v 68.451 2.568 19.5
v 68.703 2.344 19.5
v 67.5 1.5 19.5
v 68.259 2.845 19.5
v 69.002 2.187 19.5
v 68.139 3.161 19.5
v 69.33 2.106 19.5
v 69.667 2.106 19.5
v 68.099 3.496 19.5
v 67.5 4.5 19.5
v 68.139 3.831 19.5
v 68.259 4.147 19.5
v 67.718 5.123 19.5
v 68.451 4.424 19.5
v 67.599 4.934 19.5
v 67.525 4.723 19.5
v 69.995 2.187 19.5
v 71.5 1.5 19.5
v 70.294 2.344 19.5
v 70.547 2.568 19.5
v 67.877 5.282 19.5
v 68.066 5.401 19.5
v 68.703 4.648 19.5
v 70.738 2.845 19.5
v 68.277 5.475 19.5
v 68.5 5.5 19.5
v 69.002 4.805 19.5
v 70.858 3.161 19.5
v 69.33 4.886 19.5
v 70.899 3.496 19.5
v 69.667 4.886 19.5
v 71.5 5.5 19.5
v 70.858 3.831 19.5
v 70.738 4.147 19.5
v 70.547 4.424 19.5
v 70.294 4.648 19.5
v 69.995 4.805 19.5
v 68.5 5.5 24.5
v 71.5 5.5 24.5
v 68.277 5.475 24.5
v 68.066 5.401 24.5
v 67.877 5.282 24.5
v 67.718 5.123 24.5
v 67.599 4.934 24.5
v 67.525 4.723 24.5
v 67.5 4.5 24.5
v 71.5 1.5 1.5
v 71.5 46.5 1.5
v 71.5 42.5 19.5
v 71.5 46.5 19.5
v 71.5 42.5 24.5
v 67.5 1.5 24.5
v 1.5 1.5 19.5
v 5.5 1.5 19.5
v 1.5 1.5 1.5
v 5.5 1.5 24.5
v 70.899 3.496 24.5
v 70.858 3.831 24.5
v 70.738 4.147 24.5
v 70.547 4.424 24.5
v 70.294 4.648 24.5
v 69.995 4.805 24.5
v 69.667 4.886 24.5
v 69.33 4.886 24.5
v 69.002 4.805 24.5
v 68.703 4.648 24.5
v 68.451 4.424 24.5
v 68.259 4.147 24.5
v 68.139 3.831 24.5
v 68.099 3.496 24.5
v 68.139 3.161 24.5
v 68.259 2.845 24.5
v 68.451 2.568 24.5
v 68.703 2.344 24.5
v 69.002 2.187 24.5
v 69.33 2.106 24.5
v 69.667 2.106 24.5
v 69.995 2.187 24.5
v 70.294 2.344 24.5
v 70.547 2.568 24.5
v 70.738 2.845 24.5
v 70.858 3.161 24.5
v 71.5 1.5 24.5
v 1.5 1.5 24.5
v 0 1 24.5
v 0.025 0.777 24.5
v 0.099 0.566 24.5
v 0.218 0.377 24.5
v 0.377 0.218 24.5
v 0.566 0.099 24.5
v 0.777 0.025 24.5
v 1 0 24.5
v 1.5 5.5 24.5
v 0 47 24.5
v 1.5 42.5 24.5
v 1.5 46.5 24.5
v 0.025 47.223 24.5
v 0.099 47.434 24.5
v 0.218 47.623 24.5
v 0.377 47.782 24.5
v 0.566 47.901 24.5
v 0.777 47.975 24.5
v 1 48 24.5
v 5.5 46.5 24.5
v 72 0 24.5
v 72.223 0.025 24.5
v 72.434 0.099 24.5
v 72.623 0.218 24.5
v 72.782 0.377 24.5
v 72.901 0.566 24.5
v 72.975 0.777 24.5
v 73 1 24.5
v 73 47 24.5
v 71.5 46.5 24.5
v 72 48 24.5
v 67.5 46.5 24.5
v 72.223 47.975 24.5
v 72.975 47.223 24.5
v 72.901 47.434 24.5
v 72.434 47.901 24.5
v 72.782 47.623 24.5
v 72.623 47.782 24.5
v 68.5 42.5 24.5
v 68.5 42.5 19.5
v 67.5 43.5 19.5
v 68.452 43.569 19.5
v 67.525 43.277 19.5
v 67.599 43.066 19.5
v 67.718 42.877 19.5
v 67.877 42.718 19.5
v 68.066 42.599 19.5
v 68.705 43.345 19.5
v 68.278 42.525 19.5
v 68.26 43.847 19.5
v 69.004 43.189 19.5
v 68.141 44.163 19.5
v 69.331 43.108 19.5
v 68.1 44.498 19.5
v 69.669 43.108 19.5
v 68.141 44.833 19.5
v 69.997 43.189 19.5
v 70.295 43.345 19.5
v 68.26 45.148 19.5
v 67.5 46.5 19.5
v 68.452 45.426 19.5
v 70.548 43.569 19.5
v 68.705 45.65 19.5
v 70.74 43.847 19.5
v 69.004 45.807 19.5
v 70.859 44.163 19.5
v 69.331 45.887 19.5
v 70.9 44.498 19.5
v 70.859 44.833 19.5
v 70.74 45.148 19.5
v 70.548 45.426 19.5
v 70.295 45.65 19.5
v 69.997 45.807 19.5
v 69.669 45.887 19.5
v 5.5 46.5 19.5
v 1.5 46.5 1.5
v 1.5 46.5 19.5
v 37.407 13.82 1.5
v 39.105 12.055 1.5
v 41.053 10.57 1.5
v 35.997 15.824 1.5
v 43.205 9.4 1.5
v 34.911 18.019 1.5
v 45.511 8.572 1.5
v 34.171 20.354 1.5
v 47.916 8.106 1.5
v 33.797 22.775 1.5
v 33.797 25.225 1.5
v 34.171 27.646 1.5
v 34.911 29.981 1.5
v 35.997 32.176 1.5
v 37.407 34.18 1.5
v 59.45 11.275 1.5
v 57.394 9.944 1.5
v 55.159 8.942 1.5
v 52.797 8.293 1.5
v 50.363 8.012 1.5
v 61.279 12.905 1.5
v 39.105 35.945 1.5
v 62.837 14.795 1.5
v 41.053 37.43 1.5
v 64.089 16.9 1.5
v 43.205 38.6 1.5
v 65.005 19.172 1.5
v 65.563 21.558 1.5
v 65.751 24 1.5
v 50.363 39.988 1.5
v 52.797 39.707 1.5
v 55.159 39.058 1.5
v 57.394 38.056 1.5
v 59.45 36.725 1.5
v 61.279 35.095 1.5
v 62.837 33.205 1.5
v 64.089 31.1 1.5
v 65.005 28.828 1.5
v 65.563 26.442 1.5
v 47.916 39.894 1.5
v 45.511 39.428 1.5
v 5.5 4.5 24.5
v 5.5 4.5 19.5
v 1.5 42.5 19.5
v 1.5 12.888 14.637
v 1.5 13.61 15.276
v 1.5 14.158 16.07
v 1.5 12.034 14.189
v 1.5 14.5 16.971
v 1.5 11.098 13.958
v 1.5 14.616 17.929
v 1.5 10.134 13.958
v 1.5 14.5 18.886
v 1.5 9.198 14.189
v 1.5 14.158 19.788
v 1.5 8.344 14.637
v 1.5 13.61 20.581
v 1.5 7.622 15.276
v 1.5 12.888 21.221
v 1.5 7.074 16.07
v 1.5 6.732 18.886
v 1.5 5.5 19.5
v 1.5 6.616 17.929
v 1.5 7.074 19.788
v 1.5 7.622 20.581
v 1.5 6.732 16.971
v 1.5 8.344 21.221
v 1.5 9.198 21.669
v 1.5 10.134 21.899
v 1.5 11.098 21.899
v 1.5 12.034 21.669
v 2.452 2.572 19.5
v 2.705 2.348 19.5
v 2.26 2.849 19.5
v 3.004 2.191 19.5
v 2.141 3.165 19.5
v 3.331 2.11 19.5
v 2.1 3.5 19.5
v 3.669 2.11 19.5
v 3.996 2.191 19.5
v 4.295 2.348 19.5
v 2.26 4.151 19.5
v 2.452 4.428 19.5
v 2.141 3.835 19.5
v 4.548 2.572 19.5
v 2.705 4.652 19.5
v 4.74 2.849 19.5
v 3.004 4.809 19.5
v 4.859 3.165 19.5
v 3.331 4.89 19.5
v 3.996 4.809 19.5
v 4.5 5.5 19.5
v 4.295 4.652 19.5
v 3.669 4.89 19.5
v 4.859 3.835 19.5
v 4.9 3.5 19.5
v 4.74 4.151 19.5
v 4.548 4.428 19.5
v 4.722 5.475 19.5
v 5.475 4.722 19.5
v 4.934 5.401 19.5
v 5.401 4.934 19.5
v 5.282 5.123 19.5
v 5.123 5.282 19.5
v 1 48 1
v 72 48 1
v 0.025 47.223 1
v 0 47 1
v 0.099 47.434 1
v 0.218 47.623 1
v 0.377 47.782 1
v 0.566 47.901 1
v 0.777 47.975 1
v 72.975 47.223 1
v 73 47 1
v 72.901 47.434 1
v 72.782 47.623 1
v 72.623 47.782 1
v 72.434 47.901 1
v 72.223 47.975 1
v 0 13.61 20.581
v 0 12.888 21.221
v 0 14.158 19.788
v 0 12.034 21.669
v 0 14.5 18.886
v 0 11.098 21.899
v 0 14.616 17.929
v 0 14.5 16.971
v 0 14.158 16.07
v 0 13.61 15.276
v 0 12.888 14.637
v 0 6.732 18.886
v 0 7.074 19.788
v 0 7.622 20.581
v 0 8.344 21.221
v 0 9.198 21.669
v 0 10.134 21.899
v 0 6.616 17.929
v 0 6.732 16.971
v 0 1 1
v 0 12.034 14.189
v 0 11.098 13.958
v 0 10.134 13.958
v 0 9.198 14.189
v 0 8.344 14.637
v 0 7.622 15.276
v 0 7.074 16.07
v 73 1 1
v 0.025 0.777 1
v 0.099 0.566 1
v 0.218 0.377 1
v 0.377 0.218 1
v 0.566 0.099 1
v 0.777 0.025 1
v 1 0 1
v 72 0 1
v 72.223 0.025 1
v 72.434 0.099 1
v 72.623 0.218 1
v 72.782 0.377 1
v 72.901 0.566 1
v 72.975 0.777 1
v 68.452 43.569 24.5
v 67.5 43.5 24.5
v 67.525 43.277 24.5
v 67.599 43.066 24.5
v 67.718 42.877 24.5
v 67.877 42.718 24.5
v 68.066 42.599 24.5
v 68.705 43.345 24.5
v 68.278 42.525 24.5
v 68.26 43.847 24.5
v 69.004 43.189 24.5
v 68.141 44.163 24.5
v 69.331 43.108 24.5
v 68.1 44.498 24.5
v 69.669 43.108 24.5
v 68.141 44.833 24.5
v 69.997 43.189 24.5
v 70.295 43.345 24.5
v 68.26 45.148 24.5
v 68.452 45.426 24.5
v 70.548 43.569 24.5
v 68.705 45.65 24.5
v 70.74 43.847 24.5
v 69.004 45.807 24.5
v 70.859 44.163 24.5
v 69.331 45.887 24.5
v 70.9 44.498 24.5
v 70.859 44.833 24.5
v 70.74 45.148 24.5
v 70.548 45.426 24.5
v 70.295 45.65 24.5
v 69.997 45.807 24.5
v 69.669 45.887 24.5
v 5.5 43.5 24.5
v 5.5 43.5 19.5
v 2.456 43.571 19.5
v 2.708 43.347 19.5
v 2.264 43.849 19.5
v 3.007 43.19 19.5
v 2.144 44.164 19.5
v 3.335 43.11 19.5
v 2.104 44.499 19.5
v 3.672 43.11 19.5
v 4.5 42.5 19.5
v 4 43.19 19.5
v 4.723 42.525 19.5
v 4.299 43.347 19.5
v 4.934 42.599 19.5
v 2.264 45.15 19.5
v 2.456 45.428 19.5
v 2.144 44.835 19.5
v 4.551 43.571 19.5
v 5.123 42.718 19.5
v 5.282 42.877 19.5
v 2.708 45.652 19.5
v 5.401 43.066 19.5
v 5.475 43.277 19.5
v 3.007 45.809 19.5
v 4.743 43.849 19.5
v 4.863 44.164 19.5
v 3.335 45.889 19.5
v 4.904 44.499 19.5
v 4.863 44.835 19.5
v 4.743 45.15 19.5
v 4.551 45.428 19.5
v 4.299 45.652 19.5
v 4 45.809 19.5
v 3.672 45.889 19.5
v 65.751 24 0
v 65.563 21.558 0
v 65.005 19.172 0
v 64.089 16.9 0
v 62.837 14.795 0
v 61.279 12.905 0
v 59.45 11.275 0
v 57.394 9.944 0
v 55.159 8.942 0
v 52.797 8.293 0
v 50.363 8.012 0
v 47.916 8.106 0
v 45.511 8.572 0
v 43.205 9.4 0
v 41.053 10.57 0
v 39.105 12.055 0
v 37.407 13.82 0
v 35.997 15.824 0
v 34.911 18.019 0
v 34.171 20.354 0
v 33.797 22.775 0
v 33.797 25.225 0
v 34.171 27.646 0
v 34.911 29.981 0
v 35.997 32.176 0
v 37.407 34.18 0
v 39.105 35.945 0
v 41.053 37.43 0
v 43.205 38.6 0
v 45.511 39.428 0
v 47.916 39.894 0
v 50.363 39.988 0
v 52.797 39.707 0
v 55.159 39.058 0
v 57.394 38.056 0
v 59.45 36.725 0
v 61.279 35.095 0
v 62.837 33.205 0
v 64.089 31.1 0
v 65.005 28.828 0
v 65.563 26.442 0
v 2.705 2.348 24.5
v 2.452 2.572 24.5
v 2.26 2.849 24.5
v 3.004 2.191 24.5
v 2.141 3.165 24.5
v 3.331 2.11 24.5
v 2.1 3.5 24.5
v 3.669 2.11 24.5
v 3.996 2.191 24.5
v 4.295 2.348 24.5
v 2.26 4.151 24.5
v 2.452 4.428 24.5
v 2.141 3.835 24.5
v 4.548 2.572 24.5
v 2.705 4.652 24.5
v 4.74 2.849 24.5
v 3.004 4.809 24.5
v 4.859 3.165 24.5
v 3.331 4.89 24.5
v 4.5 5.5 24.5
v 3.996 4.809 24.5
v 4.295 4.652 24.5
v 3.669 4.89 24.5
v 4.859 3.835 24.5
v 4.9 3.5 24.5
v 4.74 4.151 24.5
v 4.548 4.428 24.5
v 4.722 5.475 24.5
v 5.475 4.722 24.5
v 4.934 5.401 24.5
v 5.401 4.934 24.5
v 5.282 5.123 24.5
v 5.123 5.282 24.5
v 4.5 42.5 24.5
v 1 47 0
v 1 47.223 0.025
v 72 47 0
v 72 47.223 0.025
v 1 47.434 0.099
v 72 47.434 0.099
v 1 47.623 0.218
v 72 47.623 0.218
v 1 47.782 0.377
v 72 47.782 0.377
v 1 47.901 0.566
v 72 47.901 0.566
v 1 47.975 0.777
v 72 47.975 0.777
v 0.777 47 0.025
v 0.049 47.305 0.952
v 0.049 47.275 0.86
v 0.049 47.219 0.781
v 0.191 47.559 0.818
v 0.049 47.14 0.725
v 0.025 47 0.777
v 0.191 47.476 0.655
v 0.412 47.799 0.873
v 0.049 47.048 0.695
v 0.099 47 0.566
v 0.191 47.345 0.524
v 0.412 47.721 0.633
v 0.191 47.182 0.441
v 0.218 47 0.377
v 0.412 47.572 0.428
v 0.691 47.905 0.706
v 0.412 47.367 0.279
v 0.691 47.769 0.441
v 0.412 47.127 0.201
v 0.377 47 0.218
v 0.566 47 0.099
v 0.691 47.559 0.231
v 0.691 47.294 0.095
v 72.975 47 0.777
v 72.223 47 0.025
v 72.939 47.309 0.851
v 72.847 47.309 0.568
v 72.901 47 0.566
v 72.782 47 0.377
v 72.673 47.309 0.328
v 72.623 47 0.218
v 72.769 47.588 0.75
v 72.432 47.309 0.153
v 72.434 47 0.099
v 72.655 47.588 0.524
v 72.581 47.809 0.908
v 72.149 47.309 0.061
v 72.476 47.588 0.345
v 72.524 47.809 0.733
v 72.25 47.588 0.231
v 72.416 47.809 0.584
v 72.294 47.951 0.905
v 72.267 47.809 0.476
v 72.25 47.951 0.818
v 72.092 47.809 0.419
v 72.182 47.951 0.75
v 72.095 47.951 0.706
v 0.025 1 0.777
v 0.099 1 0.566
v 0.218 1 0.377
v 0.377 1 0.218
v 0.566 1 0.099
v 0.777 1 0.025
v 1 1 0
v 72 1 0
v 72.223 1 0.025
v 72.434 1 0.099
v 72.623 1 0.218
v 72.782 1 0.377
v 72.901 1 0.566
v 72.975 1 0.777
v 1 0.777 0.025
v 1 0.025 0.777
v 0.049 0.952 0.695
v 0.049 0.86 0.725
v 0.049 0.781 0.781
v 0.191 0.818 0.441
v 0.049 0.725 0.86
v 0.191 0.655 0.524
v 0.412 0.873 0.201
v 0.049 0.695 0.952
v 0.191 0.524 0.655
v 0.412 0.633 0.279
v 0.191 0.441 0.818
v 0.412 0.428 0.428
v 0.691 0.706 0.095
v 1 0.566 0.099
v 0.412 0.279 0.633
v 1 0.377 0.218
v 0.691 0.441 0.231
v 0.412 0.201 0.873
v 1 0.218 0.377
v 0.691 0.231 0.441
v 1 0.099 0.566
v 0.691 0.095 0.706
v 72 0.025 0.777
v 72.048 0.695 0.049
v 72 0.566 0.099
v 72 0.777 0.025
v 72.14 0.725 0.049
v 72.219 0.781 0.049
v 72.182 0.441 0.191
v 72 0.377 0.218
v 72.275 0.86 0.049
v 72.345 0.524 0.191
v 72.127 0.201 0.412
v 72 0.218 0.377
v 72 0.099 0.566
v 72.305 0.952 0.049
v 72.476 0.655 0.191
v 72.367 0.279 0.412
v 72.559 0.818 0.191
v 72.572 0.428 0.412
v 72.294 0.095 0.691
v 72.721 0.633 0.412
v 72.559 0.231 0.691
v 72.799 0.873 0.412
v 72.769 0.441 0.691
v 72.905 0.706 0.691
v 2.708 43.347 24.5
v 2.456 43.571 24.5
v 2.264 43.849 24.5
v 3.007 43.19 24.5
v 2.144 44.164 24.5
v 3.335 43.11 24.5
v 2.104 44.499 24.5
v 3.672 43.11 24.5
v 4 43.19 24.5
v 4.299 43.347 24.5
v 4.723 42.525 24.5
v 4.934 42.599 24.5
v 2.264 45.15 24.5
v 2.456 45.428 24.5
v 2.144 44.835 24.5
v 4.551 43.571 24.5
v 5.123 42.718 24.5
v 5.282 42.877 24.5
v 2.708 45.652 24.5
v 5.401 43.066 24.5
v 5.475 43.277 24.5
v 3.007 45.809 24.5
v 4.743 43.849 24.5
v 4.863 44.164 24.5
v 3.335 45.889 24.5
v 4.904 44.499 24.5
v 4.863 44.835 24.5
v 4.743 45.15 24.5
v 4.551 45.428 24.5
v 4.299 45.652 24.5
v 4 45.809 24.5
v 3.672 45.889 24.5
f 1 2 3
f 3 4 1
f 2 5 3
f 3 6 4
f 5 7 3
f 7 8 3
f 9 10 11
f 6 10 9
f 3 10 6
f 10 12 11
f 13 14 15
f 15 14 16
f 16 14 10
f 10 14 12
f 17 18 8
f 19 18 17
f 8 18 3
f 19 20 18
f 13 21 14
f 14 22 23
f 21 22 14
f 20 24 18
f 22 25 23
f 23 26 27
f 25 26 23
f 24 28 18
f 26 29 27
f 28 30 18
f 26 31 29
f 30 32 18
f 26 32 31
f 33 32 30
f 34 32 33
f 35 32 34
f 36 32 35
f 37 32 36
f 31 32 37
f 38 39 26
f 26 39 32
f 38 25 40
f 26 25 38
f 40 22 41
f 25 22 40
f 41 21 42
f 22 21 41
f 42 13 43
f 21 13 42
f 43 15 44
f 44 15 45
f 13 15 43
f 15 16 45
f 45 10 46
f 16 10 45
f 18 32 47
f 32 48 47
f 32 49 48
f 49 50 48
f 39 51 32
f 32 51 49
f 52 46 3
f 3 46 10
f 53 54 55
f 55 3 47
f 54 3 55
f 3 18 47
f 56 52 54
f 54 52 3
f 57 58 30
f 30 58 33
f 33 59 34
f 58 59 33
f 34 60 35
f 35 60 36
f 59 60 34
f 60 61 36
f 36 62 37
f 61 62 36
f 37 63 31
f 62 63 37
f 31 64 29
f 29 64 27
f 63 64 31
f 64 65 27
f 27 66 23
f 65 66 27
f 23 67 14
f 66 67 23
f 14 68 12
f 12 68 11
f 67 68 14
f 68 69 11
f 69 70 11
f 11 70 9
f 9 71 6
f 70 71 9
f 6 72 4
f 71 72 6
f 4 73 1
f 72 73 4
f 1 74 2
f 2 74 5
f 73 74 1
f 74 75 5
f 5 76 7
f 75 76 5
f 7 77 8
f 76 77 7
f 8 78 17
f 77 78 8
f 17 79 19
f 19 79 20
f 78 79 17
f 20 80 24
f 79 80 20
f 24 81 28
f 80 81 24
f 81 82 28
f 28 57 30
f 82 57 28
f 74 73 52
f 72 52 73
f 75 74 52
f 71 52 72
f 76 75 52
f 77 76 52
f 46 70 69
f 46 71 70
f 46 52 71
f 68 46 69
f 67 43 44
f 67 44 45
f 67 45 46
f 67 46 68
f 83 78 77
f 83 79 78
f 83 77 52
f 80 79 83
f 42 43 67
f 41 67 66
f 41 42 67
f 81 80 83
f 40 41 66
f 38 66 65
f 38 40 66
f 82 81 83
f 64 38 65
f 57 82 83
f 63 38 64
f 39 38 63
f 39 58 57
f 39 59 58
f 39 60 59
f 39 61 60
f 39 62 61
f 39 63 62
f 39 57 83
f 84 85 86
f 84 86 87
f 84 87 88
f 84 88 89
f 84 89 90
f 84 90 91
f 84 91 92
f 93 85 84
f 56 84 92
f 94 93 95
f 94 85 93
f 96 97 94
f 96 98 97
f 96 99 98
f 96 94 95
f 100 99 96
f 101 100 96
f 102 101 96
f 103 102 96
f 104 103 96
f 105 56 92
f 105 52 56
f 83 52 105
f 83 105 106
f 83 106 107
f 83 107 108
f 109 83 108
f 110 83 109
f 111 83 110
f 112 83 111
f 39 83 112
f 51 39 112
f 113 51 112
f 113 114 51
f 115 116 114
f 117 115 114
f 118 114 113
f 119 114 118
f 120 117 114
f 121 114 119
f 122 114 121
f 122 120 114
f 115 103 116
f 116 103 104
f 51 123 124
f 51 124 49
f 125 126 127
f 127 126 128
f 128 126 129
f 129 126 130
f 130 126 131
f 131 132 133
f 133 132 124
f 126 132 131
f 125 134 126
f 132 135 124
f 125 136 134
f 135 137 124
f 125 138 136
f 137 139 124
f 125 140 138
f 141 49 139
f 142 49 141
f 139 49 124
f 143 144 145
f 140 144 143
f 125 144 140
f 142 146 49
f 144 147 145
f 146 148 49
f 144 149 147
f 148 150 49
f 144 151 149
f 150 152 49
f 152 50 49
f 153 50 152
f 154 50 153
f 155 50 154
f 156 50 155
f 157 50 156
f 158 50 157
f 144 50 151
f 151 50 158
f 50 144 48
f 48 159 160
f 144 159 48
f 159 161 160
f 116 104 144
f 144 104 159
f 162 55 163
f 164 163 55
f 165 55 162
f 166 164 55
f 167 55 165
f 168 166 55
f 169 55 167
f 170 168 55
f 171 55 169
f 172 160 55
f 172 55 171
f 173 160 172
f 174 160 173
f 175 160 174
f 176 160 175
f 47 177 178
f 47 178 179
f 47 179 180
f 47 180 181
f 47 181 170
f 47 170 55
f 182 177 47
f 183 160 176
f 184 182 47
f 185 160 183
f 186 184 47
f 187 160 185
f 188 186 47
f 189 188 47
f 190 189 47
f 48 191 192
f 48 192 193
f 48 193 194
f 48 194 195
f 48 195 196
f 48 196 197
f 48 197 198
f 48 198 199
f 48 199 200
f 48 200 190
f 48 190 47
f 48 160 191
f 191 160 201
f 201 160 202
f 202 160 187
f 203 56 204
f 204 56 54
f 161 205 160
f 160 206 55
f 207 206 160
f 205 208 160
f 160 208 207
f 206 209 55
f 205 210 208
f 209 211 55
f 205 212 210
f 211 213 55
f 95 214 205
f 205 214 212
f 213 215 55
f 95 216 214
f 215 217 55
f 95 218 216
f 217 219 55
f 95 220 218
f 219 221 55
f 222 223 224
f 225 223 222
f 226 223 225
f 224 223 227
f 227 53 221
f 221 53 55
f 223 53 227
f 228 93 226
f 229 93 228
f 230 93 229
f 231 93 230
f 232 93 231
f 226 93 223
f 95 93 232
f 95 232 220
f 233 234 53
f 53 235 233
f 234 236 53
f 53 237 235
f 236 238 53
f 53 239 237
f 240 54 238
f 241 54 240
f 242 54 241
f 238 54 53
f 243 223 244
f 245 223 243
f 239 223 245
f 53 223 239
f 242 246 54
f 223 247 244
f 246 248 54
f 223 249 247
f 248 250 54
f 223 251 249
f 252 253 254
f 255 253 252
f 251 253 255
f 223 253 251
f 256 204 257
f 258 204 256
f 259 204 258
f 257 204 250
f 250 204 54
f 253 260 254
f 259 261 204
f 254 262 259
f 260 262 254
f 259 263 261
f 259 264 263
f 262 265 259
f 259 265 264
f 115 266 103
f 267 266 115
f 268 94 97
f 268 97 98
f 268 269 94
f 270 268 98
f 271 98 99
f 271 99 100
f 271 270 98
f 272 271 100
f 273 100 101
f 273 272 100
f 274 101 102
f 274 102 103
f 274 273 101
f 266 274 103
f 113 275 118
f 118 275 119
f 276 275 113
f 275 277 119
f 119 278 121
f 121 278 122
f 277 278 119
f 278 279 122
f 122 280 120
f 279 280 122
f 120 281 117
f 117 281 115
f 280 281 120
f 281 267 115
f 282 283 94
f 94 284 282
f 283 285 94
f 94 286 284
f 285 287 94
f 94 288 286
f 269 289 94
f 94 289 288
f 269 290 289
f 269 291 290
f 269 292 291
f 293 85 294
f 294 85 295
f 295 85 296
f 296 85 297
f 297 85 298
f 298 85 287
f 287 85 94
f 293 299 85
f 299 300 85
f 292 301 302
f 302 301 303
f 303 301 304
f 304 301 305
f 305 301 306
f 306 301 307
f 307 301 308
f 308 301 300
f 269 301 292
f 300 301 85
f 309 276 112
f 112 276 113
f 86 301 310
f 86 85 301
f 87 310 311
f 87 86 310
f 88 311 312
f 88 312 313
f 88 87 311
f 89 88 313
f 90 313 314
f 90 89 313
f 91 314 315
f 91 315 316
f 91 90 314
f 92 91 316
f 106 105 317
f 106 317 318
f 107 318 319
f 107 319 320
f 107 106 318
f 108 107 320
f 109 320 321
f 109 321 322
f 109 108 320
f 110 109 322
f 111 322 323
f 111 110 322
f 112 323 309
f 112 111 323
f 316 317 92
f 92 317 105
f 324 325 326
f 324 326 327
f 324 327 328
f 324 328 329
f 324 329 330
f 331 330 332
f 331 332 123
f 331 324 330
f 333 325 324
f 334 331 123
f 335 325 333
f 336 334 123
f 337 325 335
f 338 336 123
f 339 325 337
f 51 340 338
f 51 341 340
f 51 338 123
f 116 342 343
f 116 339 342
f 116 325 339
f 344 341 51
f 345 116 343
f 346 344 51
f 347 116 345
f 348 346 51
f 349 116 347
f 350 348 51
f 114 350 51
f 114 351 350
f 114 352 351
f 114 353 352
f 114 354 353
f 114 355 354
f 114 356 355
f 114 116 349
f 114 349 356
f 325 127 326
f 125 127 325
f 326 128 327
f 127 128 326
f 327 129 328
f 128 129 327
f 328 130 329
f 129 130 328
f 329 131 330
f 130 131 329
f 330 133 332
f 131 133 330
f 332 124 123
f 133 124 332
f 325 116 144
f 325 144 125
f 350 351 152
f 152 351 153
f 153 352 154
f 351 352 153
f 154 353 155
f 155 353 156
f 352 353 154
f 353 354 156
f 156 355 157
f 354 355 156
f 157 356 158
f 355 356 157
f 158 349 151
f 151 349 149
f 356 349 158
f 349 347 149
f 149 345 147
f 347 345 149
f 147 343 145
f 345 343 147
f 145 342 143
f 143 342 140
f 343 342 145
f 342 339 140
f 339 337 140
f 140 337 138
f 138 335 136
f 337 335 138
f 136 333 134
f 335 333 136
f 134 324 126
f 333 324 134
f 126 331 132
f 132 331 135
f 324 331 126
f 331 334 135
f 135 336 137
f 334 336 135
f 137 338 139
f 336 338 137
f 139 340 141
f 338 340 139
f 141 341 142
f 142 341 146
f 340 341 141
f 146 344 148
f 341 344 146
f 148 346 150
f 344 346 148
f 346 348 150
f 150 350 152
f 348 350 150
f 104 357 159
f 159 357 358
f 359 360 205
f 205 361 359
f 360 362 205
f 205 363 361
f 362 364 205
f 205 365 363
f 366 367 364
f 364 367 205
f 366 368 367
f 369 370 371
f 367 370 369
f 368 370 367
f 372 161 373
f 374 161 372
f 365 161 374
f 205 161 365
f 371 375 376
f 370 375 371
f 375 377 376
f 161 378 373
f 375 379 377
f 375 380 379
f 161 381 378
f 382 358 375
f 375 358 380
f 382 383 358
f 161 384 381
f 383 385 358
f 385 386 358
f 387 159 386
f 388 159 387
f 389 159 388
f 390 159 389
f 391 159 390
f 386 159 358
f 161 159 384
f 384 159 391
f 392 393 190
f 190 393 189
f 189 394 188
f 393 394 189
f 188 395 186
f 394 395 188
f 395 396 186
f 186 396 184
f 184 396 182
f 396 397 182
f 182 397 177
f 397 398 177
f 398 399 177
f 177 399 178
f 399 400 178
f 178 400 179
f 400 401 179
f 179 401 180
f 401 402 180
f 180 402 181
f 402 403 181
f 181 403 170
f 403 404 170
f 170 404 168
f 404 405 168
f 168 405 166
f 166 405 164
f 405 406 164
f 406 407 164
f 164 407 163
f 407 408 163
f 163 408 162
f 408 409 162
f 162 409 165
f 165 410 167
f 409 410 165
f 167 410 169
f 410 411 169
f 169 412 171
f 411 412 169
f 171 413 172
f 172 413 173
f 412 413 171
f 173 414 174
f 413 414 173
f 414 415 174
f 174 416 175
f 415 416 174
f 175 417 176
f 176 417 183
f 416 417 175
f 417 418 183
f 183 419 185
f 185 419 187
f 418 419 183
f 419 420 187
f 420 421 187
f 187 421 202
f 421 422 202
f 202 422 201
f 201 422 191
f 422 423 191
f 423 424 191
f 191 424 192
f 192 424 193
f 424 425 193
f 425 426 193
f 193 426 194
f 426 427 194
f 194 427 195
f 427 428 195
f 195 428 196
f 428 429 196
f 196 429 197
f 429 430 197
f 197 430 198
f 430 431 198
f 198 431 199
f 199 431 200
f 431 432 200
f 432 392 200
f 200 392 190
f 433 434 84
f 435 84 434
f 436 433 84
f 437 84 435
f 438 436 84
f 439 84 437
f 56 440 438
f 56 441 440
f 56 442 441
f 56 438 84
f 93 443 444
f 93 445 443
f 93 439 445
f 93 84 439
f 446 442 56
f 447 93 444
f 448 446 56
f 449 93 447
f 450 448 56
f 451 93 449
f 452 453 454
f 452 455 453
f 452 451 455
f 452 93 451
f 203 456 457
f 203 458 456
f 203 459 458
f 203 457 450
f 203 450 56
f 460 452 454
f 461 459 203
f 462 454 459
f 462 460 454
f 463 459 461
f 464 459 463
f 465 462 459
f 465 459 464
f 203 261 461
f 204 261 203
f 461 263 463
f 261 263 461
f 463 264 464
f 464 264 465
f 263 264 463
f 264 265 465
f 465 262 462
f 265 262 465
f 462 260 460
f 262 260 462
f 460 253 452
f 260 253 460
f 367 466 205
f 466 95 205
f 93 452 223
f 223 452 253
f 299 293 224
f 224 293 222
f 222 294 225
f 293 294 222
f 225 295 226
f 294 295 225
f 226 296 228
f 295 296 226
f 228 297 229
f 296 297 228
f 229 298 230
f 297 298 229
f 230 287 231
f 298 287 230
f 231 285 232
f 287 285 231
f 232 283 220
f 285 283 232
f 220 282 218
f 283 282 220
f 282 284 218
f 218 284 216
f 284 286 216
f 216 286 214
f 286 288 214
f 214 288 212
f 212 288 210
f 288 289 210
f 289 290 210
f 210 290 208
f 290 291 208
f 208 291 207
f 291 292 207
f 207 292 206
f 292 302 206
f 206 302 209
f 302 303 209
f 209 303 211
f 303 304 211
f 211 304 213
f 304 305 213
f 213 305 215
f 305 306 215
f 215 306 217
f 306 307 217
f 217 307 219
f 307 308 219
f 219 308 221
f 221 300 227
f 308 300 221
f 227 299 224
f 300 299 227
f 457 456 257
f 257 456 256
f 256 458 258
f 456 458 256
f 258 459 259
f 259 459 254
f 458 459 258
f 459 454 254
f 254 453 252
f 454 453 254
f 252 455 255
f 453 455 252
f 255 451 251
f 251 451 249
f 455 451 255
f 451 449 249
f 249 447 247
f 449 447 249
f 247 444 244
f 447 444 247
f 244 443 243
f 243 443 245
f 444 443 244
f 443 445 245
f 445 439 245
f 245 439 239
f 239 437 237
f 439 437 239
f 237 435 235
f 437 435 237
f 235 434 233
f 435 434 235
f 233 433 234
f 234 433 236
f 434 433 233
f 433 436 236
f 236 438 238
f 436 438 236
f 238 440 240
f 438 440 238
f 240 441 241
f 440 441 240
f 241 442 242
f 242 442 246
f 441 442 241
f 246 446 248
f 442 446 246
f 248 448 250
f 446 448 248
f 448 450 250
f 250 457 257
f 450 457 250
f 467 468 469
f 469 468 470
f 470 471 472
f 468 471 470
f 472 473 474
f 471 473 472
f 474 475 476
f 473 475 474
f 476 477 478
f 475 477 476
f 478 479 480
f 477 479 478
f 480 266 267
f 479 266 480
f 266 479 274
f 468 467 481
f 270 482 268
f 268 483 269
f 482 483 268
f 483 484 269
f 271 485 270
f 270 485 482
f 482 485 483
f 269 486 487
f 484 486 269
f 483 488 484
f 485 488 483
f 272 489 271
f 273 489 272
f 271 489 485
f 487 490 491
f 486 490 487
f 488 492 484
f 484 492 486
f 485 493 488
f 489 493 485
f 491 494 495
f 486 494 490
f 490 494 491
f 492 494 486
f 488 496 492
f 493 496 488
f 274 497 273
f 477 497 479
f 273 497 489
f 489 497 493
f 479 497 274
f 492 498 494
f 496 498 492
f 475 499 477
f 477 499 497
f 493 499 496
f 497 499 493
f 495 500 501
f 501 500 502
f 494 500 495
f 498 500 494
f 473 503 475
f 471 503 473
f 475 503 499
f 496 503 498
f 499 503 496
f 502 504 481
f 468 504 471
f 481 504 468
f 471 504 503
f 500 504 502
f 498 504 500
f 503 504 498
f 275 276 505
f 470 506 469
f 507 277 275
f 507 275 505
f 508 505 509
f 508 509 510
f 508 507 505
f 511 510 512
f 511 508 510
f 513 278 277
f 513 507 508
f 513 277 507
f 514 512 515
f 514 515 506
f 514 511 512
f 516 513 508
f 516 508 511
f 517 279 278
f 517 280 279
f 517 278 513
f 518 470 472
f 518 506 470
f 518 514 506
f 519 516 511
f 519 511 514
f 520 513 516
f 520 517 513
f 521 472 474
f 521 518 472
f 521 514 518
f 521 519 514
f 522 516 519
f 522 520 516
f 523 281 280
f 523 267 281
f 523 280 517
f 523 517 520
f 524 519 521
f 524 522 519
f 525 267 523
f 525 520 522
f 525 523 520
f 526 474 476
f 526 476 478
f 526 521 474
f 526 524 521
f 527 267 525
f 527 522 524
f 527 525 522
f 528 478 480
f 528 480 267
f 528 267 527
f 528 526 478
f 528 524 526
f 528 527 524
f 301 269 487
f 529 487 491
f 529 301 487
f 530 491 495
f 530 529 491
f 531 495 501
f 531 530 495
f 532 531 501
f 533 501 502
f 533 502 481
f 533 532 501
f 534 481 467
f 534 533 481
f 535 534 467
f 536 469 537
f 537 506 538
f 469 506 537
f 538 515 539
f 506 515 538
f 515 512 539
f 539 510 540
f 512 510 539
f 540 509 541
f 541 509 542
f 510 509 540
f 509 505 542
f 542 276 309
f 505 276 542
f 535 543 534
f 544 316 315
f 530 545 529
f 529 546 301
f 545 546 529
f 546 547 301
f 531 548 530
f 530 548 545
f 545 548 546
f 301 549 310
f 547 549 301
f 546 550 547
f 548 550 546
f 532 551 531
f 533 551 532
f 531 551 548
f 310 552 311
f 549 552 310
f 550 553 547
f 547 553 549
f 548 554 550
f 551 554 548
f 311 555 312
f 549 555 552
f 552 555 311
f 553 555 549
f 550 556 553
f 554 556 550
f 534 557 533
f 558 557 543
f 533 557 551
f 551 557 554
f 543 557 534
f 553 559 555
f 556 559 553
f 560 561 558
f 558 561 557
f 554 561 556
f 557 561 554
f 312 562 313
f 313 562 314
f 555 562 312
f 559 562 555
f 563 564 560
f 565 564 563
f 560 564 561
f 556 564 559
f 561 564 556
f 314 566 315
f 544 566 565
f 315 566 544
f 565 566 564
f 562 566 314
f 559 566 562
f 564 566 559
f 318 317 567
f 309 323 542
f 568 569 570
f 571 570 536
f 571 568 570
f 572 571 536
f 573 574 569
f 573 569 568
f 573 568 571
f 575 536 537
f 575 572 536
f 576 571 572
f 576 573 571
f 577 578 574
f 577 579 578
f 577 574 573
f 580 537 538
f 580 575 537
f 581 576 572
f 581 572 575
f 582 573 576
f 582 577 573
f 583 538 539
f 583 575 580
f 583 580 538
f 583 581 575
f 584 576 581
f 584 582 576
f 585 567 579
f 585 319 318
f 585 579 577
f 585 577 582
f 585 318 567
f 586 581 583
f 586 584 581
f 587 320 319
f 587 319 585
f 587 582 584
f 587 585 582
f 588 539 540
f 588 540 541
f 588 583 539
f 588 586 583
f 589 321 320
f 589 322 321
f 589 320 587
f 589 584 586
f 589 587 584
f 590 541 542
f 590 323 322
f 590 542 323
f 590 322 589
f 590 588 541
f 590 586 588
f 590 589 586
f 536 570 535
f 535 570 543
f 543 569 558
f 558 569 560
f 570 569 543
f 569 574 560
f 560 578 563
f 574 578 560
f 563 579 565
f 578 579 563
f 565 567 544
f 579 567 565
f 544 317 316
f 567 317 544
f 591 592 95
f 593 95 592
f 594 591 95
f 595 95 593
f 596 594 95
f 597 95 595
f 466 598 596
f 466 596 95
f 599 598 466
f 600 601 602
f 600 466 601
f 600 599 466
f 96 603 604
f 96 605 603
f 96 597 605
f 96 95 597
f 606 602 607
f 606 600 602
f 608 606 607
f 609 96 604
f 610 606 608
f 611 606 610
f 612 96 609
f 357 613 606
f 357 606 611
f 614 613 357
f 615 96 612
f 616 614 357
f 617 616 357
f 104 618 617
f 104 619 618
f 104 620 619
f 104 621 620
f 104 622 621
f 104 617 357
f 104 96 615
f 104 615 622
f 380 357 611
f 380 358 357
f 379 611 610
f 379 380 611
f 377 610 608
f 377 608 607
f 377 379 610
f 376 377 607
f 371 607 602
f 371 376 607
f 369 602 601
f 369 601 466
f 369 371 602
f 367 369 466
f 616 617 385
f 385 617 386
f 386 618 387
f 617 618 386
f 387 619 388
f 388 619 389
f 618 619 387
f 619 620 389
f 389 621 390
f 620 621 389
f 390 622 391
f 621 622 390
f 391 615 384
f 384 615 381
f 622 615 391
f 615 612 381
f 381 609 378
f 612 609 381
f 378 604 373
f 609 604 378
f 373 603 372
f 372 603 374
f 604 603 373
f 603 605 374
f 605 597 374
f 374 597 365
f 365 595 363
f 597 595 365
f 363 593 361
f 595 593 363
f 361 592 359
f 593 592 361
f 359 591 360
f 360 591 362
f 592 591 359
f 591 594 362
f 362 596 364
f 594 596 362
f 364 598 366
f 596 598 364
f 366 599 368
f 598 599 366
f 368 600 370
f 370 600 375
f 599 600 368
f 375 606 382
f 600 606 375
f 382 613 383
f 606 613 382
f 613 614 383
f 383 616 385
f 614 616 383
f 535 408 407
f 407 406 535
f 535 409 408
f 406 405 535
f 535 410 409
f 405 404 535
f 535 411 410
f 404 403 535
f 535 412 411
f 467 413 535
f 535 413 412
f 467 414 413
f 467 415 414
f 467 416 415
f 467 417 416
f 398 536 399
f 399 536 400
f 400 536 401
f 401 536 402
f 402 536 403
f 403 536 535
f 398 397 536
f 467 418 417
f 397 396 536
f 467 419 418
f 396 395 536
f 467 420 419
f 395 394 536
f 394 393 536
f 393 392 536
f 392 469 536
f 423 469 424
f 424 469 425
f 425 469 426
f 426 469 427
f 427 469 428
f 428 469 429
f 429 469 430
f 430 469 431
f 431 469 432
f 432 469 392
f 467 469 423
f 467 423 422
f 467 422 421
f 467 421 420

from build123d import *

# Parameters (mm, degrees)
SKETCH_W        = 73
SKETCH_H        = 48
PAD_DEPTH       = 24.5
SKETCH001_W     = 70
SKETCH001_H     = 45
POCKET_DEPTH    = 23
FILLET_R        = 1
FILLET001_R     = 1
FILLET002_R     = 1
FILLET003_R     = 1
SKETCH002_W     = 4
SKETCH002_H     = 4
PAD001_DEPTH    = 5
FILLET004_R     = 1
SKETCH003_W     = 4
SKETCH003_H     = 4
PAD002_DEPTH    = 5
SKETCH004_R     = 1.4
POCKET001_DEPTH = 5
FILLET005_R     = 1
FILLET006_R     = 1
SKETCH005_R     = 1.4
POCKET002_DEPTH = 5
FILLET007_R     = 1
SKETCH006_R     = 1.4
POCKET003_DEPTH = 5
SKETCH007_R     = 16
POCKET004_DEPTH = 5
SKETCH008_R     = 4
POCKET005_DEPTH = 5


with BuildPart() as part:
    # Sketch → Pad (new body)
    with BuildSketch(Plane.XY):
        with Locations((36.5, 24)):
            Rectangle(SKETCH_W, SKETCH_H)
    extrude(amount=PAD_DEPTH)

    # Sketch001 (on Face6 of Pad) → Pocket (cut)
    with BuildSketch(Plane.XY.offset(24.5)):
        with Locations((36.5, 24)):
            Rectangle(SKETCH001_W, SKETCH001_H)
    extrude(amount=-POCKET_DEPTH, mode=Mode.SUBTRACT)

    # Fillet
    fillet_edges = [part.edges().sort_by_distance(p)[0] for p in [
        (73, 0, 12.25),
    ]]
    fillet(fillet_edges, radius=FILLET_R)

    # Fillet001
    fillet001_edges = [part.edges().sort_by_distance(p)[0] for p in [
        (73, 24.5, 0),
    ]]
    fillet(fillet001_edges, radius=FILLET001_R)

    # Fillet002
    fillet002_edges = [part.edges().sort_by_distance(p)[0] for p in [
        (36, 48, 0),
    ]]
    fillet(fillet002_edges, radius=FILLET002_R)

    # Fillet003
    fillet003_edges = [part.edges().sort_by_distance(p)[0] for p in [
        (0, 24, 0),
    ]]
    fillet(fillet003_edges, radius=FILLET003_R)

    # Sketch002 (on Face1 of Fillet003) → Pad001 (join)
    with BuildSketch(Plane.XY.offset(24.5)):
        with Locations((3.499952, 3.499965)):
            Rectangle(SKETCH002_W, SKETCH002_H)
    extrude(amount=-PAD001_DEPTH)

    # Fillet004
    fillet004_edges = [part.edges().sort_by_distance(p)[0] for p in [
        (5.499952, 5.499965, 22),
    ]]
    fillet(fillet004_edges, radius=FILLET004_R)

    # Sketch003 (on Face8 of Fillet004) → Pad002 (join)
    with BuildSketch(Plane.XY.offset(24.5)):
        with Locations((3.499993, 44.500004)):
            Rectangle(SKETCH003_W, SKETCH003_H)
        with Locations((69.500023, 44.500011)):
            Rectangle(SKETCH003_W, SKETCH003_H)
        with Locations((69.500008, 3.499997)):
            Rectangle(SKETCH003_W, SKETCH003_H)
    extrude(amount=-PAD002_DEPTH)

    # Sketch004 (on Face32 of Pad002) → Pocket001 (cut)
    with BuildSketch(Plane.XY.offset(24.5)):
        with Locations((3.503523, 44.499481)):
            Circle(SKETCH004_R)
        with Locations((69.500092, 44.497658)):
            Circle(SKETCH004_R)
    extrude(amount=-POCKET001_DEPTH, mode=Mode.SUBTRACT)

    # Fillet005
    fillet005_edges = [part.edges().sort_by_distance(p)[0] for p in [
        (67.500023, 42.500011, 22),
    ]]
    fillet(fillet005_edges, radius=FILLET005_R)

    # Fillet006
    fillet006_edges = [part.edges().sort_by_distance(p)[0] for p in [
        (5.499993, 42.500004, 22),
    ]]
    fillet(fillet006_edges, radius=FILLET006_R)

    # Sketch005 (on Face45 of Fillet006) → Pocket002 (cut)
    with BuildSketch(Plane.XY.offset(24.5)):
        with Locations((69.49865, 3.49611)):
            Circle(SKETCH005_R)
    extrude(amount=-POCKET002_DEPTH, mode=Mode.SUBTRACT)

    # Fillet007
    fillet007_edges = [part.edges().sort_by_distance(p)[0] for p in [
        (67.500008, 5.499997, 22),
    ]]
    fillet(fillet007_edges, radius=FILLET007_R)

    # Sketch006 (on Face35 of Fillet007) → Pocket003 (cut)
    with BuildSketch(Plane.XY.offset(24.5)):
        with Locations((3.5, 3.5)):
            Circle(SKETCH006_R)
    extrude(amount=-POCKET003_DEPTH, mode=Mode.SUBTRACT)

    # Sketch007 (on Face51 of Pocket003) → Pocket004 (cut)
    with BuildSketch(Plane(origin=(0, 0, 0), x_dir=(1, 0, 0), z_dir=(0, 0, -1))):
        with Locations((49.750546, -24)):
            Circle(SKETCH007_R)
    extrude(amount=-POCKET004_DEPTH, mode=Mode.SUBTRACT)

    # Sketch008 (on Face21 of Pocket004) → Pocket005 (cut)
    with BuildSketch(Plane(origin=(0, 0, 0), x_dir=(0, -1, 0), z_dir=(-1, 0, 0))):
        with Locations((-10.616032, 17.928658)):
            Circle(SKETCH008_R)
    extrude(amount=-POCKET005_DEPTH, mode=Mode.SUBTRACT)


solid = part.part
